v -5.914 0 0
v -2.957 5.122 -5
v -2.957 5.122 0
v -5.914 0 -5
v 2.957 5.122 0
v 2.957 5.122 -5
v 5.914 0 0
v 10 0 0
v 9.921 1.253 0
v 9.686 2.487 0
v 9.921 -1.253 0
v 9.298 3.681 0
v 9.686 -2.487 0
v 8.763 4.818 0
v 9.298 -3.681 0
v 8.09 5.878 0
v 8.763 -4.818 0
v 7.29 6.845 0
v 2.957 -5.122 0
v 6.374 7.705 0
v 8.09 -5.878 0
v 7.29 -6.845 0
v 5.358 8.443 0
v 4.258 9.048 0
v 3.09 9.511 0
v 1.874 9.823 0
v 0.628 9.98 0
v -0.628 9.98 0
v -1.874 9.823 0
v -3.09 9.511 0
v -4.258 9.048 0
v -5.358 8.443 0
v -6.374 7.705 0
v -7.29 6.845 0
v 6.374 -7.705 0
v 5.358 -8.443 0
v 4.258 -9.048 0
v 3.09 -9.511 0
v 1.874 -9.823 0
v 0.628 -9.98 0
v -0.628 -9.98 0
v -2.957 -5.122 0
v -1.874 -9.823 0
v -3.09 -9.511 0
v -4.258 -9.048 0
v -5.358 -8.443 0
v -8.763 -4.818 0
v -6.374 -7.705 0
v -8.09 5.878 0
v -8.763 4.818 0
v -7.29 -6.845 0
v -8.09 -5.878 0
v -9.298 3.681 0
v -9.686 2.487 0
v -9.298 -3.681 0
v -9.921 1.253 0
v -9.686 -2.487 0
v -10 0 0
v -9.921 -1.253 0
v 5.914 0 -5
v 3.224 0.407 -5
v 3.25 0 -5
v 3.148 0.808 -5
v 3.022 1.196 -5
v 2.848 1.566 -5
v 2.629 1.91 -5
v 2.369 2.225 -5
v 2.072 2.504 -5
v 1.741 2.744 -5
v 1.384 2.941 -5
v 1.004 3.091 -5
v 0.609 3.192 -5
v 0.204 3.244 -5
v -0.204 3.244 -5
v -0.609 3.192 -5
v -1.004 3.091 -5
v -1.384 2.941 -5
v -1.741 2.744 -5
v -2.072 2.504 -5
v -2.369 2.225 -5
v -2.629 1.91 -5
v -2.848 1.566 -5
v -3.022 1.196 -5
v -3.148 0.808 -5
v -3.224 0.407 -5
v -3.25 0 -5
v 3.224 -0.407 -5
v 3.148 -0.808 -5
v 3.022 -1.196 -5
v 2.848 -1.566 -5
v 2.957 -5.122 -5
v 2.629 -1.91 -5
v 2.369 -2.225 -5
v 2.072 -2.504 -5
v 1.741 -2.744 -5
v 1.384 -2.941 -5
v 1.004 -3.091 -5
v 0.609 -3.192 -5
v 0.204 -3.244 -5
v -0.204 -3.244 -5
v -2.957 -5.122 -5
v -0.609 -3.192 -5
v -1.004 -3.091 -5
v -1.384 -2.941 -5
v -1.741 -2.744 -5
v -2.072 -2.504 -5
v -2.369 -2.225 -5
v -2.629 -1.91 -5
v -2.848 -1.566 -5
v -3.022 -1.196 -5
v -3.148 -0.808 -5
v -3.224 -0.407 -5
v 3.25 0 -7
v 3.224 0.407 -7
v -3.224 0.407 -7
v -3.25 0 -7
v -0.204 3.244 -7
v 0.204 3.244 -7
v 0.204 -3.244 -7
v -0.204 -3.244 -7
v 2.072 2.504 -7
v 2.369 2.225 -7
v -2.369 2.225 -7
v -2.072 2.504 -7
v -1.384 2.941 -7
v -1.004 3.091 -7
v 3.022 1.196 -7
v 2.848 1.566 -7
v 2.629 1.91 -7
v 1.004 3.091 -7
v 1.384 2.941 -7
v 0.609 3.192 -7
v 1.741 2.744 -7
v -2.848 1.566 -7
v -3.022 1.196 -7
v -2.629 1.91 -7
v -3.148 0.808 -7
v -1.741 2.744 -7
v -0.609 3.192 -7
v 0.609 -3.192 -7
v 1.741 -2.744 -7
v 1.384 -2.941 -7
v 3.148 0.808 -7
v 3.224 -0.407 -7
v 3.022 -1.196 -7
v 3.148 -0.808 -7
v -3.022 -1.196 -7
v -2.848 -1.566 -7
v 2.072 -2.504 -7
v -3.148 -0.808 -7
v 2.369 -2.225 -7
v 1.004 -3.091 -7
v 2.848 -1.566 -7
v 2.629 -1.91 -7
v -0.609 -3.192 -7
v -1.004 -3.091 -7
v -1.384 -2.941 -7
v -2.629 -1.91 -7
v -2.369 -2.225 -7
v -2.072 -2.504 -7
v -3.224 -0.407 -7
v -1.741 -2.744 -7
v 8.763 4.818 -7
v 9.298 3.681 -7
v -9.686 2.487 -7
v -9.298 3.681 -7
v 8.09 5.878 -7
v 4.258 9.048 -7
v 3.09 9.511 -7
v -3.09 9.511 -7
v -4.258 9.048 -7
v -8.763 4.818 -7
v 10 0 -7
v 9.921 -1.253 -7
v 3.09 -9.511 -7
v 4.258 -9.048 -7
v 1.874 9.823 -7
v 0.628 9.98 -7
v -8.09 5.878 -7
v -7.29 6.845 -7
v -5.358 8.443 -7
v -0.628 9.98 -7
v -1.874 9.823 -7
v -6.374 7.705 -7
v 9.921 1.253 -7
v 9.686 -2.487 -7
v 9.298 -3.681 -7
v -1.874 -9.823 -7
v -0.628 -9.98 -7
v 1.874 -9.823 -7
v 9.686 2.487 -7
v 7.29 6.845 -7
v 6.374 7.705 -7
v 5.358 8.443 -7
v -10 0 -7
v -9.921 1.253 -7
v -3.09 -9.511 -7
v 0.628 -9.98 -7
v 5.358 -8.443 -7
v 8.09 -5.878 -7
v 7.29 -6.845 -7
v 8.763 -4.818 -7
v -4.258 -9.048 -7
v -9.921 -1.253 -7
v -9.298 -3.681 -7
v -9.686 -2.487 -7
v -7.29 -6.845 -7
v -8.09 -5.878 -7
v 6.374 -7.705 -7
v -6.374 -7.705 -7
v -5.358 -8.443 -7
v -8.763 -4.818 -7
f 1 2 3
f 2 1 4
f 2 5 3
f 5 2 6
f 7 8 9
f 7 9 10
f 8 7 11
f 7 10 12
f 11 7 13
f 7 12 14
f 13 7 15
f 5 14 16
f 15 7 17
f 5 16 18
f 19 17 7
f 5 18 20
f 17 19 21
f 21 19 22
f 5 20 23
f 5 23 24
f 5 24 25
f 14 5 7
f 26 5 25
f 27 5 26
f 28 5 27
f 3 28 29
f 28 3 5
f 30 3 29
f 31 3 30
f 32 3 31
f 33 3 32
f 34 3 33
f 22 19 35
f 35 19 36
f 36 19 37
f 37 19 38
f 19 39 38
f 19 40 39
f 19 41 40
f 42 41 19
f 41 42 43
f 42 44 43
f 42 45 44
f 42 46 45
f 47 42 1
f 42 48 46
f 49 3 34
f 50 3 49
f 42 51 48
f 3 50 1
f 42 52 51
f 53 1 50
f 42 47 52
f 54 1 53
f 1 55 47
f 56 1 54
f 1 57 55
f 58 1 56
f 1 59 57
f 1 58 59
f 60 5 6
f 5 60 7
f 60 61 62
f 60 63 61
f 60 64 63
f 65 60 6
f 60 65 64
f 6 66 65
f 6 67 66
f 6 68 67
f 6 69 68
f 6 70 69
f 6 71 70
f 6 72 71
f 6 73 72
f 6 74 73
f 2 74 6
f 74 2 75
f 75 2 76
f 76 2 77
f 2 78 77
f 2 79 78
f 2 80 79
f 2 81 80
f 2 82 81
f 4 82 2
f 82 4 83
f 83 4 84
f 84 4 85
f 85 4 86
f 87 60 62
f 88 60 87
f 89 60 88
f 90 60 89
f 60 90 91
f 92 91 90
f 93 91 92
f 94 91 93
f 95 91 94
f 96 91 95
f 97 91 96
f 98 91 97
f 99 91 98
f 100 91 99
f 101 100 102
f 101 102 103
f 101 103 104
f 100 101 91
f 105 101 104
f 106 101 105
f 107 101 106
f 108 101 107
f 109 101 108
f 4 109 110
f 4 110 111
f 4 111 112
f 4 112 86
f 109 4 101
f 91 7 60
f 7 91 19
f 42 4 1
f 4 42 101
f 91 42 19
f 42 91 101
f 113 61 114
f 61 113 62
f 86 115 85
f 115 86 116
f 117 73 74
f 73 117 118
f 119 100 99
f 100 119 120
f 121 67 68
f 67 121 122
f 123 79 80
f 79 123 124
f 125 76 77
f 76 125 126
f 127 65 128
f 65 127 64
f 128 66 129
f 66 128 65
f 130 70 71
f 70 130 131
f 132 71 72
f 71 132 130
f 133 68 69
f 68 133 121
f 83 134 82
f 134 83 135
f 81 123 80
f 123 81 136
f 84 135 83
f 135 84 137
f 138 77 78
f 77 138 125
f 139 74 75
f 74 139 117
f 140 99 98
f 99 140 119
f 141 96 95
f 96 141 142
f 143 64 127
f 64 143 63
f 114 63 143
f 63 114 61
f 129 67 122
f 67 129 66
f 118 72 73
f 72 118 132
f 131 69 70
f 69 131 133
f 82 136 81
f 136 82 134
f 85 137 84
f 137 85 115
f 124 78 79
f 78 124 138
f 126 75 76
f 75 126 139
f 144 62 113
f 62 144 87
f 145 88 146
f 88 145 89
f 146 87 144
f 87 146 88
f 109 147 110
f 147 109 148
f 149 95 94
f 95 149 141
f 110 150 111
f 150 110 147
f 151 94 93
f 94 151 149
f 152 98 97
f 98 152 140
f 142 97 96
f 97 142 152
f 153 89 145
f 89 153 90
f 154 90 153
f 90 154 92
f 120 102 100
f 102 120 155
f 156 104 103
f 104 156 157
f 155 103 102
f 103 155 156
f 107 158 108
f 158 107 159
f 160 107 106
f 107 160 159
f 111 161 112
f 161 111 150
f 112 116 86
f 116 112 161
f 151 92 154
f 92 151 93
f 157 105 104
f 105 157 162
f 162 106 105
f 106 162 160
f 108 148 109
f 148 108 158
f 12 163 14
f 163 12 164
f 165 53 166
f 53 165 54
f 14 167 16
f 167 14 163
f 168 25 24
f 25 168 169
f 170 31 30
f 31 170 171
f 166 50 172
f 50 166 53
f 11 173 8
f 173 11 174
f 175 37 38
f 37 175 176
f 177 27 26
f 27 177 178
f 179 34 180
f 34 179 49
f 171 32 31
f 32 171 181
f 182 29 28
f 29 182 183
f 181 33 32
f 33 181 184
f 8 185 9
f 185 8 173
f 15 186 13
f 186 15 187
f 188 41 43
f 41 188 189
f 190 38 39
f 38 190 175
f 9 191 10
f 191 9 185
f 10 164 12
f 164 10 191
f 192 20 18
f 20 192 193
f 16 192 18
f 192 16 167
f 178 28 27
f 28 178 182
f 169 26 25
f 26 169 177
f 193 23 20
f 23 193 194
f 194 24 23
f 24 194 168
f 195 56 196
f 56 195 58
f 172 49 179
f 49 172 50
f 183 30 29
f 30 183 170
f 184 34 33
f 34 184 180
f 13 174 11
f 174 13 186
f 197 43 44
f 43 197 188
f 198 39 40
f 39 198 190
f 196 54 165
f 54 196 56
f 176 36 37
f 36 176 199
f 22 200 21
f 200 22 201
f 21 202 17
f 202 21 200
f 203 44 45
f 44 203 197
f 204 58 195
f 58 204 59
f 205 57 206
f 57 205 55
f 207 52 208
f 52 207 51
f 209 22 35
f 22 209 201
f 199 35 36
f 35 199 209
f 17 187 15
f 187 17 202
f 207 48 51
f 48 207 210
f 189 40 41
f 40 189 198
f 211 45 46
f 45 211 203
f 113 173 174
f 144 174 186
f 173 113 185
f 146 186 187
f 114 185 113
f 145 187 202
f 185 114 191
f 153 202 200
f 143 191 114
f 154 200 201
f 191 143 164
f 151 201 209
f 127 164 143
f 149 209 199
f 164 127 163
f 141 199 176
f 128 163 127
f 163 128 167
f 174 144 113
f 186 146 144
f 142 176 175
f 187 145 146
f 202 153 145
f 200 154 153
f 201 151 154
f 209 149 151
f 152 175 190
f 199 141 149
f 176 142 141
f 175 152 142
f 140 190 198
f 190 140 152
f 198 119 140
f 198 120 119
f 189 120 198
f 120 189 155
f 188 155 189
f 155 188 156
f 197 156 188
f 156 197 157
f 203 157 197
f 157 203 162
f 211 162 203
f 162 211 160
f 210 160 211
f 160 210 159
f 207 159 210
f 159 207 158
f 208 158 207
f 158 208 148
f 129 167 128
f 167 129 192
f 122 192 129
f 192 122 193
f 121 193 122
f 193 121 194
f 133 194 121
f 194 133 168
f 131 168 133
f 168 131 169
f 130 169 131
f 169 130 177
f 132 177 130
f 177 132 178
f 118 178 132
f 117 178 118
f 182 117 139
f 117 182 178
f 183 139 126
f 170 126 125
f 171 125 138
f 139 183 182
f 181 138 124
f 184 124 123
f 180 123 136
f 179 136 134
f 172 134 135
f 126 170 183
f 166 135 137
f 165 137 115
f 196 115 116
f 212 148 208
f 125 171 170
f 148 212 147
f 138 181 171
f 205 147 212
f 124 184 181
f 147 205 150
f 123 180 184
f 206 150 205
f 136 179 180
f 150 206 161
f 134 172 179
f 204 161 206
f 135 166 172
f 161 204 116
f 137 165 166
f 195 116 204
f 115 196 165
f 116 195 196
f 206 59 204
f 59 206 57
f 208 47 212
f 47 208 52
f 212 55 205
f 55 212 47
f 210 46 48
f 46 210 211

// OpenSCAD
$fn = 50;


difference() {
	union() {
		translate(v = [0, 0, -7.0000000000]) {
			cylinder(h = 7.0000000000, r = 10.0000000000);
		}
	}
	union() {
		translate(v = [0, 0, 0]) {
			rotate(a = [0, 0, 0]) {
				difference() {
					union() {
						translate(v = [0, 0, -5]) {
							linear_extrude(height = 5) {
								polygon(points = [[5.9142500000, 0.0000000000], [2.9571250000, 5.1218907443], [-2.9571250000, 5.1218907443], [-5.9142500000, 0.0000000000], [-2.9571250000, -5.1218907443], [2.9571250000, -5.1218907443]]);
							}
						}
					}
					union();
				}
			}
		}
		#translate(v = [0, 0, -100.0000000000]) {
			cylinder(h = 200, r = 3.2500000000);
		}
	}
}
